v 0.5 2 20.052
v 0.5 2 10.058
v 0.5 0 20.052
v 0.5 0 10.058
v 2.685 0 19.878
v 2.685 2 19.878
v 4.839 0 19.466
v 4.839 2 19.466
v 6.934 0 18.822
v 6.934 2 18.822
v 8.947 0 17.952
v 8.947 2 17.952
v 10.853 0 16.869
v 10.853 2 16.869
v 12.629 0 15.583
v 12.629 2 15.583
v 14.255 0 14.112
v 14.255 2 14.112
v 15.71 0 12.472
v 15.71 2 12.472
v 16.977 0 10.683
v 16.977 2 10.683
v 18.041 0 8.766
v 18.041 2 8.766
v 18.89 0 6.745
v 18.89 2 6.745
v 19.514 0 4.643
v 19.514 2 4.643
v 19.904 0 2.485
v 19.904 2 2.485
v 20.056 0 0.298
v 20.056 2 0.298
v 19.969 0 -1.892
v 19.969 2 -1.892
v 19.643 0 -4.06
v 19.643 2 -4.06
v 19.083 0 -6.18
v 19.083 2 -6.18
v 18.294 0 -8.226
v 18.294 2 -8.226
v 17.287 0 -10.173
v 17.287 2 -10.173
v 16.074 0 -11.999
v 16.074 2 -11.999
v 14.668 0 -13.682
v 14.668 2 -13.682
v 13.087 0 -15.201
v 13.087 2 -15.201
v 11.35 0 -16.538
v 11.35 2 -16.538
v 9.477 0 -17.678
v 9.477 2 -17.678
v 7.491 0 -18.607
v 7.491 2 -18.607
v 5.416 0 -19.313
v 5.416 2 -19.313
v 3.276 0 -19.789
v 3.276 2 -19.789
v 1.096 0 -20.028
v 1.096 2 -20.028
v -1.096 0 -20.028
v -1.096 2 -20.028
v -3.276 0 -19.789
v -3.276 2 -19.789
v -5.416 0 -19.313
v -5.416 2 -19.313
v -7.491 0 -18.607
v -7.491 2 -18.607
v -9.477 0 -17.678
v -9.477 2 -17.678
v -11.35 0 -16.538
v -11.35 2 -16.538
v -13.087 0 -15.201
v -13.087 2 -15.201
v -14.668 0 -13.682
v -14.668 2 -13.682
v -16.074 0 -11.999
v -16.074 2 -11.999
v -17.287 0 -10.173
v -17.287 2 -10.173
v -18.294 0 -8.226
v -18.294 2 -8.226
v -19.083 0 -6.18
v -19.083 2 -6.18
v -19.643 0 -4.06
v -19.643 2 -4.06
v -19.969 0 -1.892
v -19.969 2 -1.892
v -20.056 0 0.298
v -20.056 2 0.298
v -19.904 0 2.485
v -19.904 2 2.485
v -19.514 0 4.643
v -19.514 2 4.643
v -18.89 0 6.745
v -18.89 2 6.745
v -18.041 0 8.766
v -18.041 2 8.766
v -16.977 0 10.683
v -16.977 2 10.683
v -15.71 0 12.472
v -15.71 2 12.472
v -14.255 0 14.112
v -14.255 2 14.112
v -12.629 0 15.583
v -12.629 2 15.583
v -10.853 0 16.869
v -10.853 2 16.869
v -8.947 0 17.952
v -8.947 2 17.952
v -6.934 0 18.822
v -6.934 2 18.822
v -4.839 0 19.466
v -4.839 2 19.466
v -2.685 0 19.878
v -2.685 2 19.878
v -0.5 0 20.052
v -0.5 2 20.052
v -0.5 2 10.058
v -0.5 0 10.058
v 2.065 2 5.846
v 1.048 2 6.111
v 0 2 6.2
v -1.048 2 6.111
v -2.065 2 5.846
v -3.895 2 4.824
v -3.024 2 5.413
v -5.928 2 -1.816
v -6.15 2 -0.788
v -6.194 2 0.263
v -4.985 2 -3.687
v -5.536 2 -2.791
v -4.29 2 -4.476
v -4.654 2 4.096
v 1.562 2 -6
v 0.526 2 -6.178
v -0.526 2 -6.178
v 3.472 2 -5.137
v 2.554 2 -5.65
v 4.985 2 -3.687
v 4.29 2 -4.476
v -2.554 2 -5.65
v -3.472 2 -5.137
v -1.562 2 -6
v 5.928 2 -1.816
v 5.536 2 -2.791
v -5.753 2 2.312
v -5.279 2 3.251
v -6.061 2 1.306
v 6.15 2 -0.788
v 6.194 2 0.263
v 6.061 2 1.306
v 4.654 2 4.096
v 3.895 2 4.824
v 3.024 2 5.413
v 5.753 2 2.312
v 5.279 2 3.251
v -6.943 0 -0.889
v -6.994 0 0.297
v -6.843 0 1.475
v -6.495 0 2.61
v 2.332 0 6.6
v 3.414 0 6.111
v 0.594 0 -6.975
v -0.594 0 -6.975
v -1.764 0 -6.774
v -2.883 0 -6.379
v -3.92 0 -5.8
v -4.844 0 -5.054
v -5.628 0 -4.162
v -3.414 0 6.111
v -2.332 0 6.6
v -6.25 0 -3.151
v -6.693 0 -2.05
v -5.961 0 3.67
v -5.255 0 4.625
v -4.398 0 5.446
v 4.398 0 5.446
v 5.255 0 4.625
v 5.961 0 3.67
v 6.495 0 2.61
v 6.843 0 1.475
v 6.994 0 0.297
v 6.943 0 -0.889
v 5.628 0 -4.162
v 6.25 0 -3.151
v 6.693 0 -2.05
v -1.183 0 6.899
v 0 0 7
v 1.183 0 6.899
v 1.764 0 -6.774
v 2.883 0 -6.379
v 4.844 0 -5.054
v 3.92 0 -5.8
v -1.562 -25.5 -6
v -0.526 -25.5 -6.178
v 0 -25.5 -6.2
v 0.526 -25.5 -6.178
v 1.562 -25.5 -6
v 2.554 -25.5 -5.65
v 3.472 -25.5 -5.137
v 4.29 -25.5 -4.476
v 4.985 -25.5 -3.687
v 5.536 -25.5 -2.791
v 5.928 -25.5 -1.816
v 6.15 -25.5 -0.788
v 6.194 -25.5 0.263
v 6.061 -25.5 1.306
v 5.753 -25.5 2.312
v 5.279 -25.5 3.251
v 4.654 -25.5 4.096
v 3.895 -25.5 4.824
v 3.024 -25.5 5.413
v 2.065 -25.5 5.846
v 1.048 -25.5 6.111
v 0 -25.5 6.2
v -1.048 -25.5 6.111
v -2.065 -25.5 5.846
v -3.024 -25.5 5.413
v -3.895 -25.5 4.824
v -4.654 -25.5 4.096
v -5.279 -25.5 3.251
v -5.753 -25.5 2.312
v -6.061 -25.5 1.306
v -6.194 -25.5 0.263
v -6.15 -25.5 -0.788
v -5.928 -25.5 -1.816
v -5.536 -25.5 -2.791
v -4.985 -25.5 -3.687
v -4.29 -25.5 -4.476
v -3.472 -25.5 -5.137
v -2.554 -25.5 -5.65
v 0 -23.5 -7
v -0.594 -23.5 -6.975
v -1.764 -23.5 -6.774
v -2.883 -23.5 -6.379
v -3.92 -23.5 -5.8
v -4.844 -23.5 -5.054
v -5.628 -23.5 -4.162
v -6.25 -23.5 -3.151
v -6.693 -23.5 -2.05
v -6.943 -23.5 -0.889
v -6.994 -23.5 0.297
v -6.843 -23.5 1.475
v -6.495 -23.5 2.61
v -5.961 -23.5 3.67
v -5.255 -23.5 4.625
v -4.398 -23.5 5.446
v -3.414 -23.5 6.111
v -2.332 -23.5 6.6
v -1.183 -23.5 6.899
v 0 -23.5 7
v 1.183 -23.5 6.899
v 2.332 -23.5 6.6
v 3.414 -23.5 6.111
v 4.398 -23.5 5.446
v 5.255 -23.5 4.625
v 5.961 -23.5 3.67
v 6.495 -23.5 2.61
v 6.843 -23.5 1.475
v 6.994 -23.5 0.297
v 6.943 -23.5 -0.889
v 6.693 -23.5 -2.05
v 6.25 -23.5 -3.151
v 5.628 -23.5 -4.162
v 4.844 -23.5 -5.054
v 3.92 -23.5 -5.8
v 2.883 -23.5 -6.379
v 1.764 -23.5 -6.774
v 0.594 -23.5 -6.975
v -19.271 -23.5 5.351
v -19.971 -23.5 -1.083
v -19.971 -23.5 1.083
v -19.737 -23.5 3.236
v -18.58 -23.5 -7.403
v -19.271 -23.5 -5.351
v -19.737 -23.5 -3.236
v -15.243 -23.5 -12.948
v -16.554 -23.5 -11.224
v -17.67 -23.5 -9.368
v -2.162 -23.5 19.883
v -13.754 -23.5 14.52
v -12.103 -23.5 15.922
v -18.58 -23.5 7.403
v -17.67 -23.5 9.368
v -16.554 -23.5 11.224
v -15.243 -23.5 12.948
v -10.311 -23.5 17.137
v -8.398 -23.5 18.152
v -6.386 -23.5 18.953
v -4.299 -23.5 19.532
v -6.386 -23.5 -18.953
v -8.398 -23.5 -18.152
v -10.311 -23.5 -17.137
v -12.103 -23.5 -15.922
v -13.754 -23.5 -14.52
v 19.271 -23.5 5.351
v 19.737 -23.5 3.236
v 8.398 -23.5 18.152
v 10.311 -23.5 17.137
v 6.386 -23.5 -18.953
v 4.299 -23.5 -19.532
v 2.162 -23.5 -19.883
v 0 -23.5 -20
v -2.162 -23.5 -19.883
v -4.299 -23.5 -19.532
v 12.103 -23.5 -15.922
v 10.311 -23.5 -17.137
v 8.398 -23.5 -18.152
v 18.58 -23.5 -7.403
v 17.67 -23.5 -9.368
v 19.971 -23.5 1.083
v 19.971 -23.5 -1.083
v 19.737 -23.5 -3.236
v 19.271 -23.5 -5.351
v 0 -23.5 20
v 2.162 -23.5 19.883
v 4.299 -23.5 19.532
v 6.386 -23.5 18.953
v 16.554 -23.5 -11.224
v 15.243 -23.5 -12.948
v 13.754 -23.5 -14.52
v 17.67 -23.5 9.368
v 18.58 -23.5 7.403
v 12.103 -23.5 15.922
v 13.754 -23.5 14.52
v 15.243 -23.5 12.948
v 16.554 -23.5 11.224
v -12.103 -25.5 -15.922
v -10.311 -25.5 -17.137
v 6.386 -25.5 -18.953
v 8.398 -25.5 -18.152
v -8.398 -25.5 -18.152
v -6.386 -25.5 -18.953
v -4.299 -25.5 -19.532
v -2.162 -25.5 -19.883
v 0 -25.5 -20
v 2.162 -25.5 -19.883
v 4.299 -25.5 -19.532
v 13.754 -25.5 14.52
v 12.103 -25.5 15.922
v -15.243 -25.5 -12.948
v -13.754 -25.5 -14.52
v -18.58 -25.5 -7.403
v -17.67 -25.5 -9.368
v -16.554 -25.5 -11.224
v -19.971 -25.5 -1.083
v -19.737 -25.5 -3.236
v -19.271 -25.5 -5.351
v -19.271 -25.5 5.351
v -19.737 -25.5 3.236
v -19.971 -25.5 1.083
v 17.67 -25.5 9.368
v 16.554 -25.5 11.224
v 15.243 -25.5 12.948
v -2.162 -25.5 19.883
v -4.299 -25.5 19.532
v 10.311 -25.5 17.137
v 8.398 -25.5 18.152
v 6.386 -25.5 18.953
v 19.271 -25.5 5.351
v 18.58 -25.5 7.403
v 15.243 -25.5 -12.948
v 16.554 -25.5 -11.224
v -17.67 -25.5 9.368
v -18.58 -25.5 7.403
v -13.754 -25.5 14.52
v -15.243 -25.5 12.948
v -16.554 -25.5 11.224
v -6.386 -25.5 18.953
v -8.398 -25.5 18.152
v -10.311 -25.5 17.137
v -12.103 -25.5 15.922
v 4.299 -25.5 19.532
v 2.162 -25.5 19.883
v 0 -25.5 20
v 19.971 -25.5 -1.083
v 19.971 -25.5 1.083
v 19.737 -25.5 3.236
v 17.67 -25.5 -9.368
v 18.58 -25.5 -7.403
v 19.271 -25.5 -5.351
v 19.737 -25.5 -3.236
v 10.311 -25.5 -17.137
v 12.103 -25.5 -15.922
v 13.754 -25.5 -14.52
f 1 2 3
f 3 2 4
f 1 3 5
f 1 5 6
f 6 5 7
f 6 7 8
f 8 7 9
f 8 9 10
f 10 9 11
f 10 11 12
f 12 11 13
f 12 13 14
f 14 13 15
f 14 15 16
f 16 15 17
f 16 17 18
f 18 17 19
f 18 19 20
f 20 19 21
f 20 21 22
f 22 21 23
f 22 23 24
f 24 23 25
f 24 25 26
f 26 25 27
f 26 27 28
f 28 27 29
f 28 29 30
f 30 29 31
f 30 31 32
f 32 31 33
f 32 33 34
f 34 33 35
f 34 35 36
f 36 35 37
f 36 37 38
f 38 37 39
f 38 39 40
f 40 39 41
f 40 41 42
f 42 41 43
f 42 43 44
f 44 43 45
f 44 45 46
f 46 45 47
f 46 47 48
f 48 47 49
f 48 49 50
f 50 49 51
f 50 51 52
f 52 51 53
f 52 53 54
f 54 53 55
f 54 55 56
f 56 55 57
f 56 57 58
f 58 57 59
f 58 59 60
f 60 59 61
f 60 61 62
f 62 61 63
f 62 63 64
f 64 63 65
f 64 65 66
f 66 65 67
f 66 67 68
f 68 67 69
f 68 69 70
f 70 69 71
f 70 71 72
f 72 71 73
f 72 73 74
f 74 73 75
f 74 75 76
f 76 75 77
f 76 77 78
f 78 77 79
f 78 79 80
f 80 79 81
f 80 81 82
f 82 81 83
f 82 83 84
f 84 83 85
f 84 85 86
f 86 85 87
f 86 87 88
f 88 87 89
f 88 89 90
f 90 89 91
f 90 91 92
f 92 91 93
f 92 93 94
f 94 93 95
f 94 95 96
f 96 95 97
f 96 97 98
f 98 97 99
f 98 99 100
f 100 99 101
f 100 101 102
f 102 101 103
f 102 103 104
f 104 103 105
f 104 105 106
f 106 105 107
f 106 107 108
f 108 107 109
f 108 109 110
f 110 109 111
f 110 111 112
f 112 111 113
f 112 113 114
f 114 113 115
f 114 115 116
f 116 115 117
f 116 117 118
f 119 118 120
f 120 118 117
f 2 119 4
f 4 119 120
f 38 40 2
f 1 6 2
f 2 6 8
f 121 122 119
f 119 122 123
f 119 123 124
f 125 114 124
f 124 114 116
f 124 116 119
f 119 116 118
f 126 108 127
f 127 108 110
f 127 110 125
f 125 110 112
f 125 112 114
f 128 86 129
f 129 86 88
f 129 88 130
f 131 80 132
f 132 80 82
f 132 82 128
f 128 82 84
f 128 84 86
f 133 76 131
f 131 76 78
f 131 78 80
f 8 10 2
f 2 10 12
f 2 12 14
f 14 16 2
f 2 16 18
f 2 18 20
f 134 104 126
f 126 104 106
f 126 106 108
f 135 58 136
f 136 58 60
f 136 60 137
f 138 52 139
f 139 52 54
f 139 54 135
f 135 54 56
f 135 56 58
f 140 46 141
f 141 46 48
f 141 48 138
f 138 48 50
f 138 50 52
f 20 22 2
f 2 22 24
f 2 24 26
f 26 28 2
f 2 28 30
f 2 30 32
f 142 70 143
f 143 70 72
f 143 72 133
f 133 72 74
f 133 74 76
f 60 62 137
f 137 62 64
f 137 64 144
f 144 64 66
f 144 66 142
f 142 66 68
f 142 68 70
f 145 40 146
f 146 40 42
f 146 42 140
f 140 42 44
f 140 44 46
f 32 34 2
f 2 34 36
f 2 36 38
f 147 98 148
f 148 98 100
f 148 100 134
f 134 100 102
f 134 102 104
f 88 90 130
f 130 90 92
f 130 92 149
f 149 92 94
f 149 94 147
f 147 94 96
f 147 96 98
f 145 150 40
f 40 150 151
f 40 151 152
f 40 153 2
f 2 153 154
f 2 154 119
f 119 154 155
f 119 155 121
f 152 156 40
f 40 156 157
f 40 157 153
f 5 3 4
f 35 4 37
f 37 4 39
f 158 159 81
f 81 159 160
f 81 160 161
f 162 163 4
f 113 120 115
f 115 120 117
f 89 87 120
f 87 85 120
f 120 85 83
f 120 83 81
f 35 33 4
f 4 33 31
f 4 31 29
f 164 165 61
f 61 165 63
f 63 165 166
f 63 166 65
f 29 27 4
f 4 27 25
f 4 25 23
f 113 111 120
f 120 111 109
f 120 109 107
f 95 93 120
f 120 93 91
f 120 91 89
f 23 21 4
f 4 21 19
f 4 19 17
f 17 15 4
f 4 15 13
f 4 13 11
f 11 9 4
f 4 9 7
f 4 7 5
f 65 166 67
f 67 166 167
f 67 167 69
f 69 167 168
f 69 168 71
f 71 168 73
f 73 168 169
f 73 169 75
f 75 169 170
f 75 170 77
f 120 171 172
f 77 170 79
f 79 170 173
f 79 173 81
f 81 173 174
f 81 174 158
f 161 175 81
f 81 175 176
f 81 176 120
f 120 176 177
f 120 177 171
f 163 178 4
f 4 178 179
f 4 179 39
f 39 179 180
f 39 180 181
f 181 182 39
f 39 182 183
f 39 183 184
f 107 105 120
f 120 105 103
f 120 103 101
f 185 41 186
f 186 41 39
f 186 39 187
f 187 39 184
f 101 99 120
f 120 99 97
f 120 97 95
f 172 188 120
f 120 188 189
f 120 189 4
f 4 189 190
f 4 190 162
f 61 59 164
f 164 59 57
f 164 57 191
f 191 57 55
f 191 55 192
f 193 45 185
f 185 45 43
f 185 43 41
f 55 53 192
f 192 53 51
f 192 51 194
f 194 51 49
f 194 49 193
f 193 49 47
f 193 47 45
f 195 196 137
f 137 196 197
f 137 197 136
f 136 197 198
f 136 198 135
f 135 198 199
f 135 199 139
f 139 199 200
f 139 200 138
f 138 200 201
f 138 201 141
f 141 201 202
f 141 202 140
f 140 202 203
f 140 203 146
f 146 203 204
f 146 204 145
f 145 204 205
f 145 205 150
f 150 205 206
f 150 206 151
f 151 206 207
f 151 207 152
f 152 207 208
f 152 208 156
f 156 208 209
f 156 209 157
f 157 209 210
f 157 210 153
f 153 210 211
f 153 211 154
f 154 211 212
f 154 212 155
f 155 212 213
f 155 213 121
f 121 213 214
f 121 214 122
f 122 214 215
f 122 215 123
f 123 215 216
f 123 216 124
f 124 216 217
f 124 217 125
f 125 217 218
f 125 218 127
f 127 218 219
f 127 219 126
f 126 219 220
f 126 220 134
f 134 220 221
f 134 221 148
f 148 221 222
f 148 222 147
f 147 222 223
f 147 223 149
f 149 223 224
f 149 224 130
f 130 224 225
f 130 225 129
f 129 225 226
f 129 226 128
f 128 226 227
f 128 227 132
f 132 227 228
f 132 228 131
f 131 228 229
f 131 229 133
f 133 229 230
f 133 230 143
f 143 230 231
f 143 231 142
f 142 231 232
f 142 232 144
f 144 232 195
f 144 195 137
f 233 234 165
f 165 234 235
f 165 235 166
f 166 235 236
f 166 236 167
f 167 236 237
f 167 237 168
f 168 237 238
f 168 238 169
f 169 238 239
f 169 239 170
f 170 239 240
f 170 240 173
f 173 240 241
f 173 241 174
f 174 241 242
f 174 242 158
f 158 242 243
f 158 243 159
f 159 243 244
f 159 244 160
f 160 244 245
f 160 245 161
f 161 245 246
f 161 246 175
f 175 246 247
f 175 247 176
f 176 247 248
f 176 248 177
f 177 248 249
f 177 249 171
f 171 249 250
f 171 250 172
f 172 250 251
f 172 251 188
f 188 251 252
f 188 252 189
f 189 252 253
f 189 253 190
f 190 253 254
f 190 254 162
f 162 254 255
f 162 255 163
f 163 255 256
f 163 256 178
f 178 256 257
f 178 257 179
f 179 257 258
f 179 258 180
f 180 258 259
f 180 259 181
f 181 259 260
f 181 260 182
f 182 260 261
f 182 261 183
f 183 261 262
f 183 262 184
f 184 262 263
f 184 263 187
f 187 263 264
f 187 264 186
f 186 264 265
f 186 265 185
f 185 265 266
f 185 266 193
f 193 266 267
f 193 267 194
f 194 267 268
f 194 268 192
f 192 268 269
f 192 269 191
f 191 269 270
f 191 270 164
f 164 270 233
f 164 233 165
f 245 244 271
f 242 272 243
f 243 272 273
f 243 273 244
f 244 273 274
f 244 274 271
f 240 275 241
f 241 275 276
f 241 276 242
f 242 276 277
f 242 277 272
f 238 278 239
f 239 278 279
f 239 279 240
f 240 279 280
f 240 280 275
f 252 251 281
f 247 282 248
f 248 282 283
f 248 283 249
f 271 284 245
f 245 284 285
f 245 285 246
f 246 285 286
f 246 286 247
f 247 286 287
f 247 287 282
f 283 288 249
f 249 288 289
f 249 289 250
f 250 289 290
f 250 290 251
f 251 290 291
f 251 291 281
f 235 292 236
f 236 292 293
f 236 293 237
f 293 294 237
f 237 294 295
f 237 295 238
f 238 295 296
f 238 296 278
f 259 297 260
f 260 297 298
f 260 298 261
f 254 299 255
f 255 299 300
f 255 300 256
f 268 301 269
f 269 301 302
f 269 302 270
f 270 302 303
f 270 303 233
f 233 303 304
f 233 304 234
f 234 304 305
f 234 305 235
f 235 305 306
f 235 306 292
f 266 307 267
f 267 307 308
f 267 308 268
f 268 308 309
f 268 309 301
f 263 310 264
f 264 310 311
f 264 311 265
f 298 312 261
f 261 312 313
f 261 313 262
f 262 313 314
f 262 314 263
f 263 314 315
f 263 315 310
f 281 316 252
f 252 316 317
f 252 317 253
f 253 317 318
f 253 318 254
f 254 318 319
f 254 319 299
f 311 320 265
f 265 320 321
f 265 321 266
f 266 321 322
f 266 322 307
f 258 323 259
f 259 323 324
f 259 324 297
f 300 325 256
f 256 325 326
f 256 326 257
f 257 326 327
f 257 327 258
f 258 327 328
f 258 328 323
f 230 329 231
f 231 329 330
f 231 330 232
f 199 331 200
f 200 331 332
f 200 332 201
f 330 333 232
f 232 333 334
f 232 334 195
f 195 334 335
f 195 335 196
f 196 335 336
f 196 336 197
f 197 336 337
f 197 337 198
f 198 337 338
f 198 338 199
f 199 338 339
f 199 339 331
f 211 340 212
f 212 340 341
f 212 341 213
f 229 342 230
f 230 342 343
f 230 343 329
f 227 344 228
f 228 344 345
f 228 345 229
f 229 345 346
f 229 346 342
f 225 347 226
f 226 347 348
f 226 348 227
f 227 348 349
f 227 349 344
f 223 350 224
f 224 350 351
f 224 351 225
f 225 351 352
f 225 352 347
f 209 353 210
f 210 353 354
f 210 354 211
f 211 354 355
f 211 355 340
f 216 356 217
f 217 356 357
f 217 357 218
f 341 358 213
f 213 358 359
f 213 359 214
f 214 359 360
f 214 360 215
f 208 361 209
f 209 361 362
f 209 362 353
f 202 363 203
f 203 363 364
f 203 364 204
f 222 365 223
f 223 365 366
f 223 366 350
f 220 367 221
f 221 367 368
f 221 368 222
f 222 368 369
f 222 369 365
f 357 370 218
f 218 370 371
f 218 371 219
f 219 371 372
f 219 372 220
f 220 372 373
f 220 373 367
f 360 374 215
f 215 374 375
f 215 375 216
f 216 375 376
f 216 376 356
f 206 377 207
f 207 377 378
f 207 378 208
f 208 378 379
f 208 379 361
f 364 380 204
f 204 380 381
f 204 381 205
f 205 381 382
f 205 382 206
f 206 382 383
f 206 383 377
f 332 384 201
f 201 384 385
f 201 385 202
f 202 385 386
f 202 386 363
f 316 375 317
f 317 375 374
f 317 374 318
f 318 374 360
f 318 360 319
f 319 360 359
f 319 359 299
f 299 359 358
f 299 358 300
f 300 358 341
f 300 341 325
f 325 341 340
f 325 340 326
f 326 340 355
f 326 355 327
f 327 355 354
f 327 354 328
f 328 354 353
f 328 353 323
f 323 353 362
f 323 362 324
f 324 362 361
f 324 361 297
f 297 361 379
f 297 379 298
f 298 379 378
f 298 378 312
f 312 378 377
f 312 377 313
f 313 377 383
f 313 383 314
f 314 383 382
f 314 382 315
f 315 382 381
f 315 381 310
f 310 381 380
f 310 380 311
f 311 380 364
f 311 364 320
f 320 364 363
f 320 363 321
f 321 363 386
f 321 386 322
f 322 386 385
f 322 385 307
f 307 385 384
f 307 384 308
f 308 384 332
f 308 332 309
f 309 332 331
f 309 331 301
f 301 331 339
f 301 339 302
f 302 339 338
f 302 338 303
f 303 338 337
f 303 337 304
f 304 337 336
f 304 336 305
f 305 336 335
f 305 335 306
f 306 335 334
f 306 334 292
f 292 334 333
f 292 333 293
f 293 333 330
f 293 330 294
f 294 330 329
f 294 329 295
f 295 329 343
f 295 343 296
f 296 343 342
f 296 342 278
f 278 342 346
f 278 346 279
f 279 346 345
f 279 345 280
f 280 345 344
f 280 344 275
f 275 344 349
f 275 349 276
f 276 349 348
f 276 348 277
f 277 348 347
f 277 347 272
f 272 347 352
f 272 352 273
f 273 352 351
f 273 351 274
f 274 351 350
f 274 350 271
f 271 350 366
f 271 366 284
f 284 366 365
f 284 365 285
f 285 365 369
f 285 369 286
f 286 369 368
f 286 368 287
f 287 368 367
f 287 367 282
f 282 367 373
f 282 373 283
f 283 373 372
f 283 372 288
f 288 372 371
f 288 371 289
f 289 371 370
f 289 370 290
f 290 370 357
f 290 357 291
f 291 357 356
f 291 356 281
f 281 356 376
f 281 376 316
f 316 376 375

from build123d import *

# Parameters (mm, degrees)
EXTRUDE_3_DEPTH     = 2
SKETCH_5_R          = 6.2
CUT_EXTRUDE_2_DEPTH = 2
SKETCH_6_R          = 7
EXTRUDE_6_DEPTH     = 23.5
SKETCH_7_R          = 6.2
CUT_EXTRUDE_3_DEPTH = 23.5
SKETCH_8_R          = 20
EXTRUDE_7_DEPTH     = 2
SKETCH_9_R          = 6.2
CUT_EXTRUDE_4_DEPTH = 2


with BuildPart() as part:
    # 草图3 → 凸台-拉伸3 (new body)
    with BuildSketch(Plane(origin=(0, 0, 0), x_dir=(1, 0, 0), z_dir=(0, 1, 0))):
        with BuildLine():
            Line((-0.5, -20.052167872), (-0.5, -10.058400643))
            Line((-0.5, -10.058400643), (0.5, -10.058400643))
            Line((0.5, -10.058400643), (0.5, -20.052167872))
            ThreePointArc((0.5, -20.052167872), (0, 20.058400643), (-0.5, -20.052167872))
        make_face()
    extrude(amount=EXTRUDE_3_DEPTH)

    # 草图5 → 切除-拉伸2 (cut)
    with BuildSketch(Plane(origin=(0, 2, 0), x_dir=(1, 0, 0), z_dir=(0, 1, 0))):
        Circle(SKETCH_5_R)
    extrude(amount=-CUT_EXTRUDE_2_DEPTH, mode=Mode.SUBTRACT)

    # 草图6 → 凸台-拉伸6 (add)
    with BuildSketch(Plane(origin=(0, 0, 0), x_dir=(-1, 0, 0), z_dir=(0, -1, 0))):
        Circle(SKETCH_6_R)
    extrude(amount=EXTRUDE_6_DEPTH)

    # 草图7 → 切除-拉伸3 (cut)
    with BuildSketch(Plane(origin=(0, 0, 0), x_dir=(1, 0, 0), z_dir=(0, 1, 0))):
        Circle(SKETCH_7_R)
    extrude(amount=-CUT_EXTRUDE_3_DEPTH, mode=Mode.SUBTRACT)

    # 草图8 → 凸台-拉伸7 (add)
    with BuildSketch(Plane.XZ.offset(23.5)):
        Circle(SKETCH_8_R)
    extrude(amount=EXTRUDE_7_DEPTH)

    # 草图9 → 切除-拉伸4 (cut)
    with BuildSketch(Plane.XZ.offset(25.5)):
        Circle(SKETCH_9_R)
    extrude(amount=-CUT_EXTRUDE_4_DEPTH, mode=Mode.SUBTRACT)


solid = part.part
